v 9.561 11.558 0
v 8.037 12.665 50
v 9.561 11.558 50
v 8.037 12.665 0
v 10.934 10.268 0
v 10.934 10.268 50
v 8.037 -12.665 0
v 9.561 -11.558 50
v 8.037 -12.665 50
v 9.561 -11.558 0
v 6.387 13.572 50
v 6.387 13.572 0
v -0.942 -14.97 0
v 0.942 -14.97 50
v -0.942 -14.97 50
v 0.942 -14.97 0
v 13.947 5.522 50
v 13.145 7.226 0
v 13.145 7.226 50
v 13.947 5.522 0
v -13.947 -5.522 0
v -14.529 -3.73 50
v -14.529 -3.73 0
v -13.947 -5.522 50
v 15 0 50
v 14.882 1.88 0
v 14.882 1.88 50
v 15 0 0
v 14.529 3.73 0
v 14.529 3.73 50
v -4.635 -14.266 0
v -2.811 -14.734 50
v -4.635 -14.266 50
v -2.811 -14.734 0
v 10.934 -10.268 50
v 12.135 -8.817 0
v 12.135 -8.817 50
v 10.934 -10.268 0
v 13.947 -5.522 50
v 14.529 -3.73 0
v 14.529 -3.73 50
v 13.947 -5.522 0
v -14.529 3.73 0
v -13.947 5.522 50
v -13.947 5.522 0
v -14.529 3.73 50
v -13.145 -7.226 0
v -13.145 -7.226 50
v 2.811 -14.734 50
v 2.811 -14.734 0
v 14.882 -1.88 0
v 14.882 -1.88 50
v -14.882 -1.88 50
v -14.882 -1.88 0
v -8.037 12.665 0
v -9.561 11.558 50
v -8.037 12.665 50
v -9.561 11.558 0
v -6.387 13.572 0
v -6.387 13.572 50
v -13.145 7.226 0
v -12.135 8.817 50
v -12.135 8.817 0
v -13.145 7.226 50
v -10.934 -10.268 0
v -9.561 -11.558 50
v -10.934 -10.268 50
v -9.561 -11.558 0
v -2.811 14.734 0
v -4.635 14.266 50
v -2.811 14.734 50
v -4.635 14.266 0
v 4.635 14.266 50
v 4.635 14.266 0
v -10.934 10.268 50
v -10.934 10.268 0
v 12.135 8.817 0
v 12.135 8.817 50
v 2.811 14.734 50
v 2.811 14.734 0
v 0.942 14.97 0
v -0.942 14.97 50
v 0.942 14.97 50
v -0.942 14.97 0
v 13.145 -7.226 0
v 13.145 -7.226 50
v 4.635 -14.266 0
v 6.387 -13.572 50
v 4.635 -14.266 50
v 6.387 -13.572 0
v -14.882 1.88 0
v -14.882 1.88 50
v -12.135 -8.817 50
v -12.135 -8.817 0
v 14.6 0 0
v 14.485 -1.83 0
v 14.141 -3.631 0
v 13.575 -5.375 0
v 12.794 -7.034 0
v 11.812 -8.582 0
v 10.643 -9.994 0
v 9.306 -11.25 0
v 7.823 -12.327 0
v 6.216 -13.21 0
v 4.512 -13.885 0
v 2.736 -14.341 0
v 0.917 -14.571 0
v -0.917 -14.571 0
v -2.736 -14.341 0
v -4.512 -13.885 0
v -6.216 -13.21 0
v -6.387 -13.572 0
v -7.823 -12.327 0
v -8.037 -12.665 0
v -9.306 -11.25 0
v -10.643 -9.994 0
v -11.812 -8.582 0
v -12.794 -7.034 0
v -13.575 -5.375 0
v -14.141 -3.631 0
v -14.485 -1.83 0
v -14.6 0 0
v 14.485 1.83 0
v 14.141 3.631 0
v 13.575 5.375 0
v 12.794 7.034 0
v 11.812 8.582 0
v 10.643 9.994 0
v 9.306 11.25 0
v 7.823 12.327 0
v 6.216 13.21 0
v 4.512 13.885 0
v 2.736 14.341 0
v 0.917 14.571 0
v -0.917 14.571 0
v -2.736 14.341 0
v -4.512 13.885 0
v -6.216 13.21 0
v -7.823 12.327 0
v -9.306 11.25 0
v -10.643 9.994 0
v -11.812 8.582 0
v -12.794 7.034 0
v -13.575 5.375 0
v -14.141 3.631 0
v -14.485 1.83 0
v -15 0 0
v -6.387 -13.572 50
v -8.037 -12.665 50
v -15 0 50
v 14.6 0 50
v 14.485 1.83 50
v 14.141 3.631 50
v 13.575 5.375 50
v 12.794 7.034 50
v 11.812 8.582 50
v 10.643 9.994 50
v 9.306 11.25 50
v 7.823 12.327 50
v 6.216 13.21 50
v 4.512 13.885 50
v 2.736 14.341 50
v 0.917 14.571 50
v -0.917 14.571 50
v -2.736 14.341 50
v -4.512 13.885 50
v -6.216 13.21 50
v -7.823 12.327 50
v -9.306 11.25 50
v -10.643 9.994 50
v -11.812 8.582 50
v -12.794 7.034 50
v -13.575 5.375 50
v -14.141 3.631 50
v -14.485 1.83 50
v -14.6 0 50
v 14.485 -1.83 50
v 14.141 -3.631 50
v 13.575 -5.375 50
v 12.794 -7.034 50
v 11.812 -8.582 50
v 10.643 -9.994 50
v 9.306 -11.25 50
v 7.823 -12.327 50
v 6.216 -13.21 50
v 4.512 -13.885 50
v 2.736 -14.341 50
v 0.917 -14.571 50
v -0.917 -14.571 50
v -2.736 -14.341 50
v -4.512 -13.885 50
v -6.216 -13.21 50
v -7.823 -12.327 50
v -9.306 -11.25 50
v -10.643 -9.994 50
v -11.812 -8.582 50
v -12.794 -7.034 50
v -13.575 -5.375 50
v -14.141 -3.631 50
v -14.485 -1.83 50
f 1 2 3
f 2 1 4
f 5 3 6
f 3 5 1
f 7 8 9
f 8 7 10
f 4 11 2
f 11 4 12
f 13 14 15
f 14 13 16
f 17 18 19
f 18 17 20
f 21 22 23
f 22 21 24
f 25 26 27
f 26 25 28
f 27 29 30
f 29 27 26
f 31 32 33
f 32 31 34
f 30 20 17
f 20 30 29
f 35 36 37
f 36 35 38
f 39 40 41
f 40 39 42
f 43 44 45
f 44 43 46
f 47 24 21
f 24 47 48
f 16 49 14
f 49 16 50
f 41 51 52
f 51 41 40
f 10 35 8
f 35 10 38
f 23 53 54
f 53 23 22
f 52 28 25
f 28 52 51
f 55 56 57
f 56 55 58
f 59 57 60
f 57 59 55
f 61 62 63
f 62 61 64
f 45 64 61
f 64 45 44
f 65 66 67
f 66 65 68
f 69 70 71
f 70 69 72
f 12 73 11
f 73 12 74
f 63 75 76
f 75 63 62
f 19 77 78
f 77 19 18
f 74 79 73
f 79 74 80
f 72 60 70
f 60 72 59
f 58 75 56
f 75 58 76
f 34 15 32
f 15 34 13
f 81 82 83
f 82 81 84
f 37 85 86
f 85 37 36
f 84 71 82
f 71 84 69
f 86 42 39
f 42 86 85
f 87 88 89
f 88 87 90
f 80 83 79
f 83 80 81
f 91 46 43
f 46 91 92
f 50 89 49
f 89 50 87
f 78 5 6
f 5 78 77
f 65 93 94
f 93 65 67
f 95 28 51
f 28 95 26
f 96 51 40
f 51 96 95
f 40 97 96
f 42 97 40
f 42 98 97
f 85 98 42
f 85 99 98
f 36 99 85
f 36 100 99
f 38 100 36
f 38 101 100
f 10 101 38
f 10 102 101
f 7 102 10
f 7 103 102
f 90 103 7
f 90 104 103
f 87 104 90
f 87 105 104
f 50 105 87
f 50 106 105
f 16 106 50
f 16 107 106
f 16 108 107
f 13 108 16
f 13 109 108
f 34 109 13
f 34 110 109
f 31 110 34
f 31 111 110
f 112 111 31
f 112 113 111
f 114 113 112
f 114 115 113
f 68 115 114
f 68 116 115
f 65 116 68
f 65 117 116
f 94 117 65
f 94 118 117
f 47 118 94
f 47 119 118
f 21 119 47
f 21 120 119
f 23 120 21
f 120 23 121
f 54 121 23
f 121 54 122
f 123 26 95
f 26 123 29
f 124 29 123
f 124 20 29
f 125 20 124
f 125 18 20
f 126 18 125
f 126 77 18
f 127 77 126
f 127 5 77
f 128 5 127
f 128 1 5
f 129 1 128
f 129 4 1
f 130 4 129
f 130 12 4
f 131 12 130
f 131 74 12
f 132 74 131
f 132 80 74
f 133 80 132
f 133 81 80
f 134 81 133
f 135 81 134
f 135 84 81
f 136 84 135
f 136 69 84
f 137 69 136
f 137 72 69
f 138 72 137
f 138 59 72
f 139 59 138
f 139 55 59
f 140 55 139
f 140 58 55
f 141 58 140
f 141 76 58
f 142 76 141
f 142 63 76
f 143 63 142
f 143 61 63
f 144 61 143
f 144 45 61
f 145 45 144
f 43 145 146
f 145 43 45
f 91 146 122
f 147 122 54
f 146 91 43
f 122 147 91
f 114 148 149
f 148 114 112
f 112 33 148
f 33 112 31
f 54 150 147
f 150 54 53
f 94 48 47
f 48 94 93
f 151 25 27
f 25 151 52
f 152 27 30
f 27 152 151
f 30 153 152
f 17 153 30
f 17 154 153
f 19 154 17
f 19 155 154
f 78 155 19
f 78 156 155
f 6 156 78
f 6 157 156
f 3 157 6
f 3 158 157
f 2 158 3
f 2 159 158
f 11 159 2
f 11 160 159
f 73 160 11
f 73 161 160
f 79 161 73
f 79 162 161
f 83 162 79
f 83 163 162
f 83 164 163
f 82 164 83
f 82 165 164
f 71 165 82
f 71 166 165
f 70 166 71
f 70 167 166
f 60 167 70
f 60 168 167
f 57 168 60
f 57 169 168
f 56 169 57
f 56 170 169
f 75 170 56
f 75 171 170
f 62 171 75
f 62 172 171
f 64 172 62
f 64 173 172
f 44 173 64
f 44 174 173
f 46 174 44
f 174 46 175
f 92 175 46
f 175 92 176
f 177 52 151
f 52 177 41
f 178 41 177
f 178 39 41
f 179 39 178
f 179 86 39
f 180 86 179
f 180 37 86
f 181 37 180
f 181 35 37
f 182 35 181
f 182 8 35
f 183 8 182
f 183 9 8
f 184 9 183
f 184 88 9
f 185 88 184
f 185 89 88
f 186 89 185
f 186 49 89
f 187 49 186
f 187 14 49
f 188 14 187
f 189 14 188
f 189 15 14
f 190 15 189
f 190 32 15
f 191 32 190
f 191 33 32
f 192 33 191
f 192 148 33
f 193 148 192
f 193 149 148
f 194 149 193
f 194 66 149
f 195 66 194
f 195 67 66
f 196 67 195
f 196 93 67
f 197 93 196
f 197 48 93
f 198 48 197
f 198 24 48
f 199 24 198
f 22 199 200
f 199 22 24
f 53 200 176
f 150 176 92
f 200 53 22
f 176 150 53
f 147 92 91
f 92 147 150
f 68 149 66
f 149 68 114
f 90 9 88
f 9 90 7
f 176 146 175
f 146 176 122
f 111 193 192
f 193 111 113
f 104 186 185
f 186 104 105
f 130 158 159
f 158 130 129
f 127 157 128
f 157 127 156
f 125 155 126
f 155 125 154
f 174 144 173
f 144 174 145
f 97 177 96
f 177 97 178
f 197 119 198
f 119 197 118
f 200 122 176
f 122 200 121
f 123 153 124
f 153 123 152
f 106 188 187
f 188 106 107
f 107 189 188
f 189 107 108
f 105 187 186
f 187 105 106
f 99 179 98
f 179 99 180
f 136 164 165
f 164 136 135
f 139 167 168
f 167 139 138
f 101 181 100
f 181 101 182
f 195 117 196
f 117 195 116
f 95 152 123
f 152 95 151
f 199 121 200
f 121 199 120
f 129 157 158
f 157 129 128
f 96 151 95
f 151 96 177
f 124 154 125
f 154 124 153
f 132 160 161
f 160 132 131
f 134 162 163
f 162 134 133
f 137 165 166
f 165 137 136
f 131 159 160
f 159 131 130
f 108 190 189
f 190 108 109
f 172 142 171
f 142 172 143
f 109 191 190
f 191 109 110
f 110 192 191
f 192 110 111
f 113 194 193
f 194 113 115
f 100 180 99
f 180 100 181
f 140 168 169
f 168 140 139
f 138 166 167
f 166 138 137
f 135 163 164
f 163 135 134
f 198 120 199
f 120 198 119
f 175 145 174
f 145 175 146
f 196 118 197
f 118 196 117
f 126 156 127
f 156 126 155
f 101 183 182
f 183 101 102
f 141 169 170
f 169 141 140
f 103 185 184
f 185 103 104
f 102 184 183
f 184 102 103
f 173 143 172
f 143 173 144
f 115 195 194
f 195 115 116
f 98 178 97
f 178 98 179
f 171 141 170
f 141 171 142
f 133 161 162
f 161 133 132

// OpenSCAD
$fn=50;
difference() {
    cylinder(50,d=30);
    cylinder(50,d=30-0.8);
}
